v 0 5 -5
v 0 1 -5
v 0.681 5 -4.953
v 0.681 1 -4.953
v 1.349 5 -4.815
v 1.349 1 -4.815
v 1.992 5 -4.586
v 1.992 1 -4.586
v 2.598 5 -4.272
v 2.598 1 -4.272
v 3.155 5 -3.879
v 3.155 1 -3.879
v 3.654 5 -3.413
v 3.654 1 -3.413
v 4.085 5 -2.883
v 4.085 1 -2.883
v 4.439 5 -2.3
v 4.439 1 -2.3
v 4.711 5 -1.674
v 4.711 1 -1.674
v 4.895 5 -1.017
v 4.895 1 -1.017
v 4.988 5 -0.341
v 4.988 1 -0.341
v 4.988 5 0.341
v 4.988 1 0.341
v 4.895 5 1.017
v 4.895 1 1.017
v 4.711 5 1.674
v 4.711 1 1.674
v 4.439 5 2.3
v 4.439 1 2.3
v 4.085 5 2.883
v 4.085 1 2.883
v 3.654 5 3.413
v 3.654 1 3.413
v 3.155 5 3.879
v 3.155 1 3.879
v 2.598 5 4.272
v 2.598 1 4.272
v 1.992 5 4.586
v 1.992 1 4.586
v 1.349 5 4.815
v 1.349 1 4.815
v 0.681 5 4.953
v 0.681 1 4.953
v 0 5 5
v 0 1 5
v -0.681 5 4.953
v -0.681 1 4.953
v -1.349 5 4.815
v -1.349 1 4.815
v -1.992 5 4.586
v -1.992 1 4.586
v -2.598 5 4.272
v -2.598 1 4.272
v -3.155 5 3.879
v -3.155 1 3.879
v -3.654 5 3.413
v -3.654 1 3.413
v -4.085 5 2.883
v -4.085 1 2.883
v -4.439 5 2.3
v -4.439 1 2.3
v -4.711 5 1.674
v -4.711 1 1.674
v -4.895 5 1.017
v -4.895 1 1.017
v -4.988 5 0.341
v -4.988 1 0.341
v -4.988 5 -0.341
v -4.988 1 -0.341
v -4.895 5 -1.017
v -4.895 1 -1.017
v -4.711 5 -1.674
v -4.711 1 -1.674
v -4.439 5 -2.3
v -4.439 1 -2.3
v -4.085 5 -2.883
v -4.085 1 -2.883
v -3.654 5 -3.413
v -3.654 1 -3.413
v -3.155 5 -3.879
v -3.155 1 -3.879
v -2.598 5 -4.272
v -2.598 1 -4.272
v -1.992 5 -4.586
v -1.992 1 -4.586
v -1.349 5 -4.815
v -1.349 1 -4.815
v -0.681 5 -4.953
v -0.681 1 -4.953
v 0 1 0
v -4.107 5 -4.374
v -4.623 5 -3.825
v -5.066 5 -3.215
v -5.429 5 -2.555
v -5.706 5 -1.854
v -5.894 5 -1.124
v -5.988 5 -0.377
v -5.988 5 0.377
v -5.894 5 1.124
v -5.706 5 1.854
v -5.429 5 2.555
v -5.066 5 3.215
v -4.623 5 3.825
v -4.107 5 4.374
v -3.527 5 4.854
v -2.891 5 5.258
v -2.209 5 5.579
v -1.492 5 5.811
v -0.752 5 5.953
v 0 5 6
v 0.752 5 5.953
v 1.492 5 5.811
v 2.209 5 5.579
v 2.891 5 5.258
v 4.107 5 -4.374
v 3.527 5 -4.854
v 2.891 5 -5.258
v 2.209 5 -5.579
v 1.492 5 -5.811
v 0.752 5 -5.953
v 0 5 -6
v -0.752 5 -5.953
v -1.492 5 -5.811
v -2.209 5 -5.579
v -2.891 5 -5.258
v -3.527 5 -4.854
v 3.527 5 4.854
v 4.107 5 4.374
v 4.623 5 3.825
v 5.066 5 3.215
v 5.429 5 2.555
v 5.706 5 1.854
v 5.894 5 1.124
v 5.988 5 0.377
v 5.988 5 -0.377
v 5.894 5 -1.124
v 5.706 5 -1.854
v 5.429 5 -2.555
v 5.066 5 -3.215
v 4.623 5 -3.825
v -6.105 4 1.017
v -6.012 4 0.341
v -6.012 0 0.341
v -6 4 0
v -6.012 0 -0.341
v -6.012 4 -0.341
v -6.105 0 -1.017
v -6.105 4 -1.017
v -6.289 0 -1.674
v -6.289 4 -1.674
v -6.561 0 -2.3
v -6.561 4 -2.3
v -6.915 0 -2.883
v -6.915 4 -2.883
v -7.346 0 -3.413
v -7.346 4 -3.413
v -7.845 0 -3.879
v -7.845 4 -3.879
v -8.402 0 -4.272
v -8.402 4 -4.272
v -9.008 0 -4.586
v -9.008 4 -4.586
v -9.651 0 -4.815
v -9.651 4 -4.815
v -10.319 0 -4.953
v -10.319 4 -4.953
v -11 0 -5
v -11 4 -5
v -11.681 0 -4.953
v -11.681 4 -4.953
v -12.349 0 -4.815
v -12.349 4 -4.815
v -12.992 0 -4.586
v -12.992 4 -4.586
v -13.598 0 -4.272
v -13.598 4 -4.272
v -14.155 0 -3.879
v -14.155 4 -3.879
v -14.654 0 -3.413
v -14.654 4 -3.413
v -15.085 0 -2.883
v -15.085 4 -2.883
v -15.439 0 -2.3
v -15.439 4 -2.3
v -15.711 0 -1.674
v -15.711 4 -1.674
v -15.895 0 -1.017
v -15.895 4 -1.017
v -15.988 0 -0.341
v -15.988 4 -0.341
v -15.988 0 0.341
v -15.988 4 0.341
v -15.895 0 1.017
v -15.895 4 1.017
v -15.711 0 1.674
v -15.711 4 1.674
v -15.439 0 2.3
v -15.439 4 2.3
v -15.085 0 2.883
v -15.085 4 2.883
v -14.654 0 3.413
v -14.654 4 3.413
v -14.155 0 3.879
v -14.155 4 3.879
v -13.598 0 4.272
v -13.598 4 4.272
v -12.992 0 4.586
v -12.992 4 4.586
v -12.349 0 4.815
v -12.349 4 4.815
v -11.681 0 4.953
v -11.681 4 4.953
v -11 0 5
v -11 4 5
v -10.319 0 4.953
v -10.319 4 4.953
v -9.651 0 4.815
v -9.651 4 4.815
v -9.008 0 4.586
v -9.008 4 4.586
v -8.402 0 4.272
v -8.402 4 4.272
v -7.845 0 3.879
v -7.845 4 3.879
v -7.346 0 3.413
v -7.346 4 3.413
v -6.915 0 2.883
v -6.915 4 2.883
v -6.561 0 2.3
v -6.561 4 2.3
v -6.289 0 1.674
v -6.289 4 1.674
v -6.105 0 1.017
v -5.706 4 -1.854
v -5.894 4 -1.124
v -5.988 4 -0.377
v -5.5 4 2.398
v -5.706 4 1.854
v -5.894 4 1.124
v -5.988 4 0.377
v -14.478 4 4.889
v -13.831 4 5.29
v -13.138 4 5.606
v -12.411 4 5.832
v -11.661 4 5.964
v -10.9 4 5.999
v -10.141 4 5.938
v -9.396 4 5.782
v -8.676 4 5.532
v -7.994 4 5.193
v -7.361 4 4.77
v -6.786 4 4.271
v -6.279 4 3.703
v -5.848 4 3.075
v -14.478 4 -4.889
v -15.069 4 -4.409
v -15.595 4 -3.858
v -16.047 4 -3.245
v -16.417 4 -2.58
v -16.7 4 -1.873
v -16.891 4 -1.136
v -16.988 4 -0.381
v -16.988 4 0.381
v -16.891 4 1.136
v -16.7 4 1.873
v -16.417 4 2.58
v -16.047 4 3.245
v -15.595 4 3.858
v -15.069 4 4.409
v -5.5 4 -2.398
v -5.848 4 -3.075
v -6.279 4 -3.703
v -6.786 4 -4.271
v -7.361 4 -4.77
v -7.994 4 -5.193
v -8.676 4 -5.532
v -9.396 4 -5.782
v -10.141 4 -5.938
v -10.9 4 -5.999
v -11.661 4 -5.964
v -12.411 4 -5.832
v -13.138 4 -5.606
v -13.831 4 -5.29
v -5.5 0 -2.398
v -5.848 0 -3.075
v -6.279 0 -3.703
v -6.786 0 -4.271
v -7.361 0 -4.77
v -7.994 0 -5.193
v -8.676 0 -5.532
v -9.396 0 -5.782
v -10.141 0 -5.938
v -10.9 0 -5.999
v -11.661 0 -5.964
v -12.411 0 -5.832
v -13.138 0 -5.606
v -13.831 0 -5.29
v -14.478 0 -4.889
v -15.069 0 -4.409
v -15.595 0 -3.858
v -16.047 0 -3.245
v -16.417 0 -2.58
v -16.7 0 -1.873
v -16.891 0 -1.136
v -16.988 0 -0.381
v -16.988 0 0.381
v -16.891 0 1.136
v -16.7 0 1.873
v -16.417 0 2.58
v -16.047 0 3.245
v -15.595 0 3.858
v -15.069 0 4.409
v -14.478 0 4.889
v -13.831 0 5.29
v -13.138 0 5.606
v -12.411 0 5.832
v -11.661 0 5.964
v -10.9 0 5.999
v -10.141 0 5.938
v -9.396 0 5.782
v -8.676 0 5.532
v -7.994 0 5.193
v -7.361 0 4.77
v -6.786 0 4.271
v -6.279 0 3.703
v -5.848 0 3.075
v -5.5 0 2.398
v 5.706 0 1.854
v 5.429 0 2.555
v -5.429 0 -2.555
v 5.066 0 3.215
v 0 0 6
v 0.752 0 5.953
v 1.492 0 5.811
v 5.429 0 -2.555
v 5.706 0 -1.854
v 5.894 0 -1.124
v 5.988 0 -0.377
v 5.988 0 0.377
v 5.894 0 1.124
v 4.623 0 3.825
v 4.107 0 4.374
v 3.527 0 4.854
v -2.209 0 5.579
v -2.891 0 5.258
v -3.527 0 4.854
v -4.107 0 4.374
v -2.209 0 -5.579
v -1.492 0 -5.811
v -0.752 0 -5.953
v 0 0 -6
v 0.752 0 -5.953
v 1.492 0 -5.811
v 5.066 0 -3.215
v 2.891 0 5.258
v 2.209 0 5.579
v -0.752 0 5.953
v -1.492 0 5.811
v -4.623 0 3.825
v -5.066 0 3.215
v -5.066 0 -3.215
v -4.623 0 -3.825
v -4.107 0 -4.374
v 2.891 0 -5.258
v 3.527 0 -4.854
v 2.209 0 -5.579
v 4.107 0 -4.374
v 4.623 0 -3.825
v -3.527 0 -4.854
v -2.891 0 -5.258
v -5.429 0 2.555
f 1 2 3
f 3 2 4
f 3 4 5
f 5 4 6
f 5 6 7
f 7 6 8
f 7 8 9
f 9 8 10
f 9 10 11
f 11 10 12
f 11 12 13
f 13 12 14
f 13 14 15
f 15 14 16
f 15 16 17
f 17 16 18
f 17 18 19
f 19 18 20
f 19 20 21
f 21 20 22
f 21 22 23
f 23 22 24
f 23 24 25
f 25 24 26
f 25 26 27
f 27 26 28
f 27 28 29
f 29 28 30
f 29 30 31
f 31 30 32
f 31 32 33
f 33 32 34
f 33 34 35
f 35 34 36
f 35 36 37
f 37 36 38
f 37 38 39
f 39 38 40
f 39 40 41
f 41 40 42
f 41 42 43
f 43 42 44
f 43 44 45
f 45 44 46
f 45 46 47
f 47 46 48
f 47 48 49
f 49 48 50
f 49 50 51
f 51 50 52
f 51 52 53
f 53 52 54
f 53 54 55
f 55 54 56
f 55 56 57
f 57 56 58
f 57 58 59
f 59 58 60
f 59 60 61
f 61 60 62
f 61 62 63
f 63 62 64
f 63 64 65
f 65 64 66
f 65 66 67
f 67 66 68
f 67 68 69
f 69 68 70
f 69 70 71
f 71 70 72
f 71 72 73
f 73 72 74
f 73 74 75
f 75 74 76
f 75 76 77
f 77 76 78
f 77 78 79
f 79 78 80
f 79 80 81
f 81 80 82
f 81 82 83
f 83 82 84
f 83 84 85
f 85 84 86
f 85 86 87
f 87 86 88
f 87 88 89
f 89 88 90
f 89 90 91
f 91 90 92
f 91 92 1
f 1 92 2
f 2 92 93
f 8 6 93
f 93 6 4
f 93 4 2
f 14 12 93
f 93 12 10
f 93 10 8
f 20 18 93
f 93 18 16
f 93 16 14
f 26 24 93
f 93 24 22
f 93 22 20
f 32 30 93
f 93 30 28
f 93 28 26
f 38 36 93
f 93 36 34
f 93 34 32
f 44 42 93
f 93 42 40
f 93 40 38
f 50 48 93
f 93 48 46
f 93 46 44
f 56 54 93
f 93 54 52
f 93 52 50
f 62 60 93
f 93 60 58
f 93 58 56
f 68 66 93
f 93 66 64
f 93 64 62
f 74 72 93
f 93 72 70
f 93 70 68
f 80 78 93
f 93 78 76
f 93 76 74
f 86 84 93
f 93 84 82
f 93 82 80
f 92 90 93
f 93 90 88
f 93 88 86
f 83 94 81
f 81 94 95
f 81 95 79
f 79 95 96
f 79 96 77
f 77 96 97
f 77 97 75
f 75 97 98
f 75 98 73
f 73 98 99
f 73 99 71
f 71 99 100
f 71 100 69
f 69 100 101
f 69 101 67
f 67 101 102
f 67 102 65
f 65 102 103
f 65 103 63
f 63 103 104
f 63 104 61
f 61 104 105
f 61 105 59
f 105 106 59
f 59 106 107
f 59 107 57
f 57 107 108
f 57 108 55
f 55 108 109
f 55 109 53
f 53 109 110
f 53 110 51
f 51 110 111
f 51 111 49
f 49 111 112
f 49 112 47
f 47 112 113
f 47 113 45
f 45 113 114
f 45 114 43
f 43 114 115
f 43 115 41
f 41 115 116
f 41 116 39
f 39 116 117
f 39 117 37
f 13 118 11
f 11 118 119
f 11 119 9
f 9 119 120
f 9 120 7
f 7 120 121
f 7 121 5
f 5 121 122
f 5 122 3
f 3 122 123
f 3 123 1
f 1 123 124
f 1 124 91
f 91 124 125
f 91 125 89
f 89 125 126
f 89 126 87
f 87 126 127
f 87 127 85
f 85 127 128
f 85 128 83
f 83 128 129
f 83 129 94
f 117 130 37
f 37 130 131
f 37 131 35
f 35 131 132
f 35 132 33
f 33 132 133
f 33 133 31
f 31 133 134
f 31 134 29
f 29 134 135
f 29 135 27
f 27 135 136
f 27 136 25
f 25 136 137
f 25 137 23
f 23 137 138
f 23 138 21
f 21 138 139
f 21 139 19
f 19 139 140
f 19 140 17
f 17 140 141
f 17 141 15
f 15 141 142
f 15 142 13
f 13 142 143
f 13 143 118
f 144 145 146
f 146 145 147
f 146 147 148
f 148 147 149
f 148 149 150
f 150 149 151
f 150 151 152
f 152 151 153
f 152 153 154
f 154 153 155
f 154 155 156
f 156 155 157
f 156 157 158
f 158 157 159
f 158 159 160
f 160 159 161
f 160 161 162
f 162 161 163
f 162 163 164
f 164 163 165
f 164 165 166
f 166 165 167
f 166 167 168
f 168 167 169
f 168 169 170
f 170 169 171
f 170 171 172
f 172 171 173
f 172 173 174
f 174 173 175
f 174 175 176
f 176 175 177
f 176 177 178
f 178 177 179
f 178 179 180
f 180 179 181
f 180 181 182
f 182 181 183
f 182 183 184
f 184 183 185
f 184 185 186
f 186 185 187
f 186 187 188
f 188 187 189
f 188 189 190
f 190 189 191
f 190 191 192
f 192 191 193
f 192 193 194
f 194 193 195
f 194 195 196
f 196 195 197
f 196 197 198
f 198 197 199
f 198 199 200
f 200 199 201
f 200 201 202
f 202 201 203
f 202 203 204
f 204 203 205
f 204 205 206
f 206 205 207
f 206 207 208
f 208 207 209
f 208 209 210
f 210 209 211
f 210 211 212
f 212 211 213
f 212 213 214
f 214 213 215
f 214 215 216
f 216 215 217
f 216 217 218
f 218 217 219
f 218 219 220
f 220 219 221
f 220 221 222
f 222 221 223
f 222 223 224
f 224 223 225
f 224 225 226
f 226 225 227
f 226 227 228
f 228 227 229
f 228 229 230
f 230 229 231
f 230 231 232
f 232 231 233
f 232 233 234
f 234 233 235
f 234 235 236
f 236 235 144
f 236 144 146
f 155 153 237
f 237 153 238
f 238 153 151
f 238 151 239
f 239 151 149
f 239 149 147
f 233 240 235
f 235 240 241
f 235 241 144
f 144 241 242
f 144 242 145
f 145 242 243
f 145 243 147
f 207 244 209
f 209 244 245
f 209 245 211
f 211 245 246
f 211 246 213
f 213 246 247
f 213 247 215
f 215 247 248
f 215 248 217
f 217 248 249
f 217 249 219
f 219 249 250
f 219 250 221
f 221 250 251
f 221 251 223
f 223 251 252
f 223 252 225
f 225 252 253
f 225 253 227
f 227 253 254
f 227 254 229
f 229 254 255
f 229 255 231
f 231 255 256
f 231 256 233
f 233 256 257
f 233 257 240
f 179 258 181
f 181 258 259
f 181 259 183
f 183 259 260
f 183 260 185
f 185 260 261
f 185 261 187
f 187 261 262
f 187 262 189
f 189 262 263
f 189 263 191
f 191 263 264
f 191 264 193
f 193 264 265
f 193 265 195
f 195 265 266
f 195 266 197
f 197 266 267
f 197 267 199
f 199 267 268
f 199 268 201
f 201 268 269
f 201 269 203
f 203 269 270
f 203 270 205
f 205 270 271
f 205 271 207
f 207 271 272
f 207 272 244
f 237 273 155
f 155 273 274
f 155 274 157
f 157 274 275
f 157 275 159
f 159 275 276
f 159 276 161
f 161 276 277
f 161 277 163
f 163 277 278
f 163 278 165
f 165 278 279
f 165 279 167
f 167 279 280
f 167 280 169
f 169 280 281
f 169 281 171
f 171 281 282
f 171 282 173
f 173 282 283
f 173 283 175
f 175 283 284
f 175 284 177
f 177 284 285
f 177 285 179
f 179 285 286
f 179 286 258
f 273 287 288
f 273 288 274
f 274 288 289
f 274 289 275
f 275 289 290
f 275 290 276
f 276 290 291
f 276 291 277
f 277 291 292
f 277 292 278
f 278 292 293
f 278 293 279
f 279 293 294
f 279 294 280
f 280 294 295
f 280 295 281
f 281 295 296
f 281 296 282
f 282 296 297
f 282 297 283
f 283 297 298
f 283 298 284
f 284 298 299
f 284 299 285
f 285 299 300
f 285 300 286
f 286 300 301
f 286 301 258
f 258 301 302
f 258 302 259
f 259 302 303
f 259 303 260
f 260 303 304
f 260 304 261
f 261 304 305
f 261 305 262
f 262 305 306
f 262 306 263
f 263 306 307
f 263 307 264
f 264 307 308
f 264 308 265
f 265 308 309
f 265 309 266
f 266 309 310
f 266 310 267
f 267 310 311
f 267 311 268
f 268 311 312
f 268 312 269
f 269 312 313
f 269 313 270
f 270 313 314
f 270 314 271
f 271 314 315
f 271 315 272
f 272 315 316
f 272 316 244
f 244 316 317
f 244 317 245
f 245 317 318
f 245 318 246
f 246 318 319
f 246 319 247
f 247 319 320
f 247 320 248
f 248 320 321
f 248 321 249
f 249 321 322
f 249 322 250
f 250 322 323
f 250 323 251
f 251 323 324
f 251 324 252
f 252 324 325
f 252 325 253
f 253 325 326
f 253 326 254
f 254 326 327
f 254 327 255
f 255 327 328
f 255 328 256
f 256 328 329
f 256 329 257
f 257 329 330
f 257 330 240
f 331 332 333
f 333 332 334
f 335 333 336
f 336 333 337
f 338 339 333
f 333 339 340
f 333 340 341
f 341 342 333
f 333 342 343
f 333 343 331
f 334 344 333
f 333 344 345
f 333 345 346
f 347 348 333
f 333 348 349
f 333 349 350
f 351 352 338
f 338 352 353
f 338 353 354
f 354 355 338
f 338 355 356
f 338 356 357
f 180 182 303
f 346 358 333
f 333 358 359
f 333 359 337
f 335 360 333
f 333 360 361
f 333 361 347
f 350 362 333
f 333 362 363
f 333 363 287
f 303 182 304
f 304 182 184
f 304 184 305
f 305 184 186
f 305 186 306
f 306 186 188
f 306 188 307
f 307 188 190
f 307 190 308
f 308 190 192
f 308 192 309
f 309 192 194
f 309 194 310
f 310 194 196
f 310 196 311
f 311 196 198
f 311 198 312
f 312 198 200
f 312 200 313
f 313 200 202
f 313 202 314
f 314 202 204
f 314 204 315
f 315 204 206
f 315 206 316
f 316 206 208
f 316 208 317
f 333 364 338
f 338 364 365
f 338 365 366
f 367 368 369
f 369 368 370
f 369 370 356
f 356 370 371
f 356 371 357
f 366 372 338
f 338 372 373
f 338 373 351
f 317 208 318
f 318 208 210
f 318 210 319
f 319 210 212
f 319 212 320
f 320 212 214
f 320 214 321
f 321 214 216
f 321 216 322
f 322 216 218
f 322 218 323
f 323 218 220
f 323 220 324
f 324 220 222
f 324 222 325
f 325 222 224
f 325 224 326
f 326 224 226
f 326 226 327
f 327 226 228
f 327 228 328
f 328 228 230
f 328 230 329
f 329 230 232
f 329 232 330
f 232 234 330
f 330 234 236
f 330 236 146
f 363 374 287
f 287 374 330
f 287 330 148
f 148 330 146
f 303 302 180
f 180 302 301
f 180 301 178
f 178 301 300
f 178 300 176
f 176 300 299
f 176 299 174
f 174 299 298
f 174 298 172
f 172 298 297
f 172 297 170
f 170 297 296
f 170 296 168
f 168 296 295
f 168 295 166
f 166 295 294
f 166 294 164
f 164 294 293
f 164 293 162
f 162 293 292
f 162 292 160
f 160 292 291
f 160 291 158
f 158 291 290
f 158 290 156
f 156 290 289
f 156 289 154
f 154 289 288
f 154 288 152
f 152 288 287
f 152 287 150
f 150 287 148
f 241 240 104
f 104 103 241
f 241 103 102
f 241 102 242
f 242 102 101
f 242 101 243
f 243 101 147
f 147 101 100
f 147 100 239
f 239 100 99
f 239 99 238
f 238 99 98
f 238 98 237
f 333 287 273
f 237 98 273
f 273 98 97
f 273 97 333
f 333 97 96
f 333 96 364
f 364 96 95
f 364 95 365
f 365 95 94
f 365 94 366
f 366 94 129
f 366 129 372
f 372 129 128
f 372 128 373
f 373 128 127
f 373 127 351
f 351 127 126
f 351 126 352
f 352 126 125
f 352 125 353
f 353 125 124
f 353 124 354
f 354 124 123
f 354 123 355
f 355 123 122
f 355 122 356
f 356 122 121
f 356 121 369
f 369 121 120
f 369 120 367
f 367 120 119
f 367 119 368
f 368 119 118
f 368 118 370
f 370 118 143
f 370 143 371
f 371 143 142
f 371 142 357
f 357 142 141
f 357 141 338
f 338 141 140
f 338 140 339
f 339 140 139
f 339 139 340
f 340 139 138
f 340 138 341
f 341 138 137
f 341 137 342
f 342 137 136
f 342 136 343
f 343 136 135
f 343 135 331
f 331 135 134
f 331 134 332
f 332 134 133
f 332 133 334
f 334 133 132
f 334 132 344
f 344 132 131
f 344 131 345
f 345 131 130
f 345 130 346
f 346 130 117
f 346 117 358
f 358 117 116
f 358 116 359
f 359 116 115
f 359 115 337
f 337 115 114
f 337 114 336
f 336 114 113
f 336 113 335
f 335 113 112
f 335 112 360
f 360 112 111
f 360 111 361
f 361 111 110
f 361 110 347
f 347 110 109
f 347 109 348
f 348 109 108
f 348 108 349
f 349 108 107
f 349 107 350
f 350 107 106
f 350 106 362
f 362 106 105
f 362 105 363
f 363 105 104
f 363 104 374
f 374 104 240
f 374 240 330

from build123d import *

# Parameters (mm, degrees)
SKETCH_1_R      = 5
EXTRUDE_1_DEPTH = 4
SKETCH_2_R      = 6
EXTRUDE_2_DEPTH = 1
SKETCH_4_R      = 6
SKETCH_4_R_2    = 5
EXTRUDE_3_DEPTH = 1


with BuildPart() as part:
    # Эскиз1 → Бобышка-Вытянуть1 (new body)
    with BuildSketch(Plane(origin=(0, 0, 0), x_dir=(1, 0, 0), z_dir=(0, 1, 0))):
        with BuildLine():
            ThreePointArc((-5.5, -2.397915762), (6, 0), (-5.5, 2.397915762))
            ThreePointArc((-5.5, 2.397915762), (-17, 0), (-5.5, -2.397915762))
        make_face()
        with Locations(Location((0, 0, 0), (0, 0, 270))):
            Circle(SKETCH_1_R, mode=Mode.SUBTRACT)
        with Locations(Location((-11, 0, 0), (0, 0, 270))):
            Circle(SKETCH_1_R, mode=Mode.SUBTRACT)
    extrude(amount=EXTRUDE_1_DEPTH)

    # Эскиз2 → Бобышка-Вытянуть2 (add)
    with BuildSketch(Plane.XZ):
        Circle(SKETCH_2_R)
    extrude(amount=-EXTRUDE_2_DEPTH)

    # Эскиз4 → Бобышка-Вытянуть3 (add)
    with BuildSketch(Plane(origin=(0, 4, 0), x_dir=(1, 0, 0), z_dir=(0, 1, 0))):
        with Locations(Location((0, 0, 0), (0, 0, 156.443535691))):
            Circle(SKETCH_4_R)
        with Locations(Location((0, 0, 0), (0, 0, 90))):
            Circle(SKETCH_4_R_2, mode=Mode.SUBTRACT)
    extrude(amount=EXTRUDE_3_DEPTH)


solid = part.part
